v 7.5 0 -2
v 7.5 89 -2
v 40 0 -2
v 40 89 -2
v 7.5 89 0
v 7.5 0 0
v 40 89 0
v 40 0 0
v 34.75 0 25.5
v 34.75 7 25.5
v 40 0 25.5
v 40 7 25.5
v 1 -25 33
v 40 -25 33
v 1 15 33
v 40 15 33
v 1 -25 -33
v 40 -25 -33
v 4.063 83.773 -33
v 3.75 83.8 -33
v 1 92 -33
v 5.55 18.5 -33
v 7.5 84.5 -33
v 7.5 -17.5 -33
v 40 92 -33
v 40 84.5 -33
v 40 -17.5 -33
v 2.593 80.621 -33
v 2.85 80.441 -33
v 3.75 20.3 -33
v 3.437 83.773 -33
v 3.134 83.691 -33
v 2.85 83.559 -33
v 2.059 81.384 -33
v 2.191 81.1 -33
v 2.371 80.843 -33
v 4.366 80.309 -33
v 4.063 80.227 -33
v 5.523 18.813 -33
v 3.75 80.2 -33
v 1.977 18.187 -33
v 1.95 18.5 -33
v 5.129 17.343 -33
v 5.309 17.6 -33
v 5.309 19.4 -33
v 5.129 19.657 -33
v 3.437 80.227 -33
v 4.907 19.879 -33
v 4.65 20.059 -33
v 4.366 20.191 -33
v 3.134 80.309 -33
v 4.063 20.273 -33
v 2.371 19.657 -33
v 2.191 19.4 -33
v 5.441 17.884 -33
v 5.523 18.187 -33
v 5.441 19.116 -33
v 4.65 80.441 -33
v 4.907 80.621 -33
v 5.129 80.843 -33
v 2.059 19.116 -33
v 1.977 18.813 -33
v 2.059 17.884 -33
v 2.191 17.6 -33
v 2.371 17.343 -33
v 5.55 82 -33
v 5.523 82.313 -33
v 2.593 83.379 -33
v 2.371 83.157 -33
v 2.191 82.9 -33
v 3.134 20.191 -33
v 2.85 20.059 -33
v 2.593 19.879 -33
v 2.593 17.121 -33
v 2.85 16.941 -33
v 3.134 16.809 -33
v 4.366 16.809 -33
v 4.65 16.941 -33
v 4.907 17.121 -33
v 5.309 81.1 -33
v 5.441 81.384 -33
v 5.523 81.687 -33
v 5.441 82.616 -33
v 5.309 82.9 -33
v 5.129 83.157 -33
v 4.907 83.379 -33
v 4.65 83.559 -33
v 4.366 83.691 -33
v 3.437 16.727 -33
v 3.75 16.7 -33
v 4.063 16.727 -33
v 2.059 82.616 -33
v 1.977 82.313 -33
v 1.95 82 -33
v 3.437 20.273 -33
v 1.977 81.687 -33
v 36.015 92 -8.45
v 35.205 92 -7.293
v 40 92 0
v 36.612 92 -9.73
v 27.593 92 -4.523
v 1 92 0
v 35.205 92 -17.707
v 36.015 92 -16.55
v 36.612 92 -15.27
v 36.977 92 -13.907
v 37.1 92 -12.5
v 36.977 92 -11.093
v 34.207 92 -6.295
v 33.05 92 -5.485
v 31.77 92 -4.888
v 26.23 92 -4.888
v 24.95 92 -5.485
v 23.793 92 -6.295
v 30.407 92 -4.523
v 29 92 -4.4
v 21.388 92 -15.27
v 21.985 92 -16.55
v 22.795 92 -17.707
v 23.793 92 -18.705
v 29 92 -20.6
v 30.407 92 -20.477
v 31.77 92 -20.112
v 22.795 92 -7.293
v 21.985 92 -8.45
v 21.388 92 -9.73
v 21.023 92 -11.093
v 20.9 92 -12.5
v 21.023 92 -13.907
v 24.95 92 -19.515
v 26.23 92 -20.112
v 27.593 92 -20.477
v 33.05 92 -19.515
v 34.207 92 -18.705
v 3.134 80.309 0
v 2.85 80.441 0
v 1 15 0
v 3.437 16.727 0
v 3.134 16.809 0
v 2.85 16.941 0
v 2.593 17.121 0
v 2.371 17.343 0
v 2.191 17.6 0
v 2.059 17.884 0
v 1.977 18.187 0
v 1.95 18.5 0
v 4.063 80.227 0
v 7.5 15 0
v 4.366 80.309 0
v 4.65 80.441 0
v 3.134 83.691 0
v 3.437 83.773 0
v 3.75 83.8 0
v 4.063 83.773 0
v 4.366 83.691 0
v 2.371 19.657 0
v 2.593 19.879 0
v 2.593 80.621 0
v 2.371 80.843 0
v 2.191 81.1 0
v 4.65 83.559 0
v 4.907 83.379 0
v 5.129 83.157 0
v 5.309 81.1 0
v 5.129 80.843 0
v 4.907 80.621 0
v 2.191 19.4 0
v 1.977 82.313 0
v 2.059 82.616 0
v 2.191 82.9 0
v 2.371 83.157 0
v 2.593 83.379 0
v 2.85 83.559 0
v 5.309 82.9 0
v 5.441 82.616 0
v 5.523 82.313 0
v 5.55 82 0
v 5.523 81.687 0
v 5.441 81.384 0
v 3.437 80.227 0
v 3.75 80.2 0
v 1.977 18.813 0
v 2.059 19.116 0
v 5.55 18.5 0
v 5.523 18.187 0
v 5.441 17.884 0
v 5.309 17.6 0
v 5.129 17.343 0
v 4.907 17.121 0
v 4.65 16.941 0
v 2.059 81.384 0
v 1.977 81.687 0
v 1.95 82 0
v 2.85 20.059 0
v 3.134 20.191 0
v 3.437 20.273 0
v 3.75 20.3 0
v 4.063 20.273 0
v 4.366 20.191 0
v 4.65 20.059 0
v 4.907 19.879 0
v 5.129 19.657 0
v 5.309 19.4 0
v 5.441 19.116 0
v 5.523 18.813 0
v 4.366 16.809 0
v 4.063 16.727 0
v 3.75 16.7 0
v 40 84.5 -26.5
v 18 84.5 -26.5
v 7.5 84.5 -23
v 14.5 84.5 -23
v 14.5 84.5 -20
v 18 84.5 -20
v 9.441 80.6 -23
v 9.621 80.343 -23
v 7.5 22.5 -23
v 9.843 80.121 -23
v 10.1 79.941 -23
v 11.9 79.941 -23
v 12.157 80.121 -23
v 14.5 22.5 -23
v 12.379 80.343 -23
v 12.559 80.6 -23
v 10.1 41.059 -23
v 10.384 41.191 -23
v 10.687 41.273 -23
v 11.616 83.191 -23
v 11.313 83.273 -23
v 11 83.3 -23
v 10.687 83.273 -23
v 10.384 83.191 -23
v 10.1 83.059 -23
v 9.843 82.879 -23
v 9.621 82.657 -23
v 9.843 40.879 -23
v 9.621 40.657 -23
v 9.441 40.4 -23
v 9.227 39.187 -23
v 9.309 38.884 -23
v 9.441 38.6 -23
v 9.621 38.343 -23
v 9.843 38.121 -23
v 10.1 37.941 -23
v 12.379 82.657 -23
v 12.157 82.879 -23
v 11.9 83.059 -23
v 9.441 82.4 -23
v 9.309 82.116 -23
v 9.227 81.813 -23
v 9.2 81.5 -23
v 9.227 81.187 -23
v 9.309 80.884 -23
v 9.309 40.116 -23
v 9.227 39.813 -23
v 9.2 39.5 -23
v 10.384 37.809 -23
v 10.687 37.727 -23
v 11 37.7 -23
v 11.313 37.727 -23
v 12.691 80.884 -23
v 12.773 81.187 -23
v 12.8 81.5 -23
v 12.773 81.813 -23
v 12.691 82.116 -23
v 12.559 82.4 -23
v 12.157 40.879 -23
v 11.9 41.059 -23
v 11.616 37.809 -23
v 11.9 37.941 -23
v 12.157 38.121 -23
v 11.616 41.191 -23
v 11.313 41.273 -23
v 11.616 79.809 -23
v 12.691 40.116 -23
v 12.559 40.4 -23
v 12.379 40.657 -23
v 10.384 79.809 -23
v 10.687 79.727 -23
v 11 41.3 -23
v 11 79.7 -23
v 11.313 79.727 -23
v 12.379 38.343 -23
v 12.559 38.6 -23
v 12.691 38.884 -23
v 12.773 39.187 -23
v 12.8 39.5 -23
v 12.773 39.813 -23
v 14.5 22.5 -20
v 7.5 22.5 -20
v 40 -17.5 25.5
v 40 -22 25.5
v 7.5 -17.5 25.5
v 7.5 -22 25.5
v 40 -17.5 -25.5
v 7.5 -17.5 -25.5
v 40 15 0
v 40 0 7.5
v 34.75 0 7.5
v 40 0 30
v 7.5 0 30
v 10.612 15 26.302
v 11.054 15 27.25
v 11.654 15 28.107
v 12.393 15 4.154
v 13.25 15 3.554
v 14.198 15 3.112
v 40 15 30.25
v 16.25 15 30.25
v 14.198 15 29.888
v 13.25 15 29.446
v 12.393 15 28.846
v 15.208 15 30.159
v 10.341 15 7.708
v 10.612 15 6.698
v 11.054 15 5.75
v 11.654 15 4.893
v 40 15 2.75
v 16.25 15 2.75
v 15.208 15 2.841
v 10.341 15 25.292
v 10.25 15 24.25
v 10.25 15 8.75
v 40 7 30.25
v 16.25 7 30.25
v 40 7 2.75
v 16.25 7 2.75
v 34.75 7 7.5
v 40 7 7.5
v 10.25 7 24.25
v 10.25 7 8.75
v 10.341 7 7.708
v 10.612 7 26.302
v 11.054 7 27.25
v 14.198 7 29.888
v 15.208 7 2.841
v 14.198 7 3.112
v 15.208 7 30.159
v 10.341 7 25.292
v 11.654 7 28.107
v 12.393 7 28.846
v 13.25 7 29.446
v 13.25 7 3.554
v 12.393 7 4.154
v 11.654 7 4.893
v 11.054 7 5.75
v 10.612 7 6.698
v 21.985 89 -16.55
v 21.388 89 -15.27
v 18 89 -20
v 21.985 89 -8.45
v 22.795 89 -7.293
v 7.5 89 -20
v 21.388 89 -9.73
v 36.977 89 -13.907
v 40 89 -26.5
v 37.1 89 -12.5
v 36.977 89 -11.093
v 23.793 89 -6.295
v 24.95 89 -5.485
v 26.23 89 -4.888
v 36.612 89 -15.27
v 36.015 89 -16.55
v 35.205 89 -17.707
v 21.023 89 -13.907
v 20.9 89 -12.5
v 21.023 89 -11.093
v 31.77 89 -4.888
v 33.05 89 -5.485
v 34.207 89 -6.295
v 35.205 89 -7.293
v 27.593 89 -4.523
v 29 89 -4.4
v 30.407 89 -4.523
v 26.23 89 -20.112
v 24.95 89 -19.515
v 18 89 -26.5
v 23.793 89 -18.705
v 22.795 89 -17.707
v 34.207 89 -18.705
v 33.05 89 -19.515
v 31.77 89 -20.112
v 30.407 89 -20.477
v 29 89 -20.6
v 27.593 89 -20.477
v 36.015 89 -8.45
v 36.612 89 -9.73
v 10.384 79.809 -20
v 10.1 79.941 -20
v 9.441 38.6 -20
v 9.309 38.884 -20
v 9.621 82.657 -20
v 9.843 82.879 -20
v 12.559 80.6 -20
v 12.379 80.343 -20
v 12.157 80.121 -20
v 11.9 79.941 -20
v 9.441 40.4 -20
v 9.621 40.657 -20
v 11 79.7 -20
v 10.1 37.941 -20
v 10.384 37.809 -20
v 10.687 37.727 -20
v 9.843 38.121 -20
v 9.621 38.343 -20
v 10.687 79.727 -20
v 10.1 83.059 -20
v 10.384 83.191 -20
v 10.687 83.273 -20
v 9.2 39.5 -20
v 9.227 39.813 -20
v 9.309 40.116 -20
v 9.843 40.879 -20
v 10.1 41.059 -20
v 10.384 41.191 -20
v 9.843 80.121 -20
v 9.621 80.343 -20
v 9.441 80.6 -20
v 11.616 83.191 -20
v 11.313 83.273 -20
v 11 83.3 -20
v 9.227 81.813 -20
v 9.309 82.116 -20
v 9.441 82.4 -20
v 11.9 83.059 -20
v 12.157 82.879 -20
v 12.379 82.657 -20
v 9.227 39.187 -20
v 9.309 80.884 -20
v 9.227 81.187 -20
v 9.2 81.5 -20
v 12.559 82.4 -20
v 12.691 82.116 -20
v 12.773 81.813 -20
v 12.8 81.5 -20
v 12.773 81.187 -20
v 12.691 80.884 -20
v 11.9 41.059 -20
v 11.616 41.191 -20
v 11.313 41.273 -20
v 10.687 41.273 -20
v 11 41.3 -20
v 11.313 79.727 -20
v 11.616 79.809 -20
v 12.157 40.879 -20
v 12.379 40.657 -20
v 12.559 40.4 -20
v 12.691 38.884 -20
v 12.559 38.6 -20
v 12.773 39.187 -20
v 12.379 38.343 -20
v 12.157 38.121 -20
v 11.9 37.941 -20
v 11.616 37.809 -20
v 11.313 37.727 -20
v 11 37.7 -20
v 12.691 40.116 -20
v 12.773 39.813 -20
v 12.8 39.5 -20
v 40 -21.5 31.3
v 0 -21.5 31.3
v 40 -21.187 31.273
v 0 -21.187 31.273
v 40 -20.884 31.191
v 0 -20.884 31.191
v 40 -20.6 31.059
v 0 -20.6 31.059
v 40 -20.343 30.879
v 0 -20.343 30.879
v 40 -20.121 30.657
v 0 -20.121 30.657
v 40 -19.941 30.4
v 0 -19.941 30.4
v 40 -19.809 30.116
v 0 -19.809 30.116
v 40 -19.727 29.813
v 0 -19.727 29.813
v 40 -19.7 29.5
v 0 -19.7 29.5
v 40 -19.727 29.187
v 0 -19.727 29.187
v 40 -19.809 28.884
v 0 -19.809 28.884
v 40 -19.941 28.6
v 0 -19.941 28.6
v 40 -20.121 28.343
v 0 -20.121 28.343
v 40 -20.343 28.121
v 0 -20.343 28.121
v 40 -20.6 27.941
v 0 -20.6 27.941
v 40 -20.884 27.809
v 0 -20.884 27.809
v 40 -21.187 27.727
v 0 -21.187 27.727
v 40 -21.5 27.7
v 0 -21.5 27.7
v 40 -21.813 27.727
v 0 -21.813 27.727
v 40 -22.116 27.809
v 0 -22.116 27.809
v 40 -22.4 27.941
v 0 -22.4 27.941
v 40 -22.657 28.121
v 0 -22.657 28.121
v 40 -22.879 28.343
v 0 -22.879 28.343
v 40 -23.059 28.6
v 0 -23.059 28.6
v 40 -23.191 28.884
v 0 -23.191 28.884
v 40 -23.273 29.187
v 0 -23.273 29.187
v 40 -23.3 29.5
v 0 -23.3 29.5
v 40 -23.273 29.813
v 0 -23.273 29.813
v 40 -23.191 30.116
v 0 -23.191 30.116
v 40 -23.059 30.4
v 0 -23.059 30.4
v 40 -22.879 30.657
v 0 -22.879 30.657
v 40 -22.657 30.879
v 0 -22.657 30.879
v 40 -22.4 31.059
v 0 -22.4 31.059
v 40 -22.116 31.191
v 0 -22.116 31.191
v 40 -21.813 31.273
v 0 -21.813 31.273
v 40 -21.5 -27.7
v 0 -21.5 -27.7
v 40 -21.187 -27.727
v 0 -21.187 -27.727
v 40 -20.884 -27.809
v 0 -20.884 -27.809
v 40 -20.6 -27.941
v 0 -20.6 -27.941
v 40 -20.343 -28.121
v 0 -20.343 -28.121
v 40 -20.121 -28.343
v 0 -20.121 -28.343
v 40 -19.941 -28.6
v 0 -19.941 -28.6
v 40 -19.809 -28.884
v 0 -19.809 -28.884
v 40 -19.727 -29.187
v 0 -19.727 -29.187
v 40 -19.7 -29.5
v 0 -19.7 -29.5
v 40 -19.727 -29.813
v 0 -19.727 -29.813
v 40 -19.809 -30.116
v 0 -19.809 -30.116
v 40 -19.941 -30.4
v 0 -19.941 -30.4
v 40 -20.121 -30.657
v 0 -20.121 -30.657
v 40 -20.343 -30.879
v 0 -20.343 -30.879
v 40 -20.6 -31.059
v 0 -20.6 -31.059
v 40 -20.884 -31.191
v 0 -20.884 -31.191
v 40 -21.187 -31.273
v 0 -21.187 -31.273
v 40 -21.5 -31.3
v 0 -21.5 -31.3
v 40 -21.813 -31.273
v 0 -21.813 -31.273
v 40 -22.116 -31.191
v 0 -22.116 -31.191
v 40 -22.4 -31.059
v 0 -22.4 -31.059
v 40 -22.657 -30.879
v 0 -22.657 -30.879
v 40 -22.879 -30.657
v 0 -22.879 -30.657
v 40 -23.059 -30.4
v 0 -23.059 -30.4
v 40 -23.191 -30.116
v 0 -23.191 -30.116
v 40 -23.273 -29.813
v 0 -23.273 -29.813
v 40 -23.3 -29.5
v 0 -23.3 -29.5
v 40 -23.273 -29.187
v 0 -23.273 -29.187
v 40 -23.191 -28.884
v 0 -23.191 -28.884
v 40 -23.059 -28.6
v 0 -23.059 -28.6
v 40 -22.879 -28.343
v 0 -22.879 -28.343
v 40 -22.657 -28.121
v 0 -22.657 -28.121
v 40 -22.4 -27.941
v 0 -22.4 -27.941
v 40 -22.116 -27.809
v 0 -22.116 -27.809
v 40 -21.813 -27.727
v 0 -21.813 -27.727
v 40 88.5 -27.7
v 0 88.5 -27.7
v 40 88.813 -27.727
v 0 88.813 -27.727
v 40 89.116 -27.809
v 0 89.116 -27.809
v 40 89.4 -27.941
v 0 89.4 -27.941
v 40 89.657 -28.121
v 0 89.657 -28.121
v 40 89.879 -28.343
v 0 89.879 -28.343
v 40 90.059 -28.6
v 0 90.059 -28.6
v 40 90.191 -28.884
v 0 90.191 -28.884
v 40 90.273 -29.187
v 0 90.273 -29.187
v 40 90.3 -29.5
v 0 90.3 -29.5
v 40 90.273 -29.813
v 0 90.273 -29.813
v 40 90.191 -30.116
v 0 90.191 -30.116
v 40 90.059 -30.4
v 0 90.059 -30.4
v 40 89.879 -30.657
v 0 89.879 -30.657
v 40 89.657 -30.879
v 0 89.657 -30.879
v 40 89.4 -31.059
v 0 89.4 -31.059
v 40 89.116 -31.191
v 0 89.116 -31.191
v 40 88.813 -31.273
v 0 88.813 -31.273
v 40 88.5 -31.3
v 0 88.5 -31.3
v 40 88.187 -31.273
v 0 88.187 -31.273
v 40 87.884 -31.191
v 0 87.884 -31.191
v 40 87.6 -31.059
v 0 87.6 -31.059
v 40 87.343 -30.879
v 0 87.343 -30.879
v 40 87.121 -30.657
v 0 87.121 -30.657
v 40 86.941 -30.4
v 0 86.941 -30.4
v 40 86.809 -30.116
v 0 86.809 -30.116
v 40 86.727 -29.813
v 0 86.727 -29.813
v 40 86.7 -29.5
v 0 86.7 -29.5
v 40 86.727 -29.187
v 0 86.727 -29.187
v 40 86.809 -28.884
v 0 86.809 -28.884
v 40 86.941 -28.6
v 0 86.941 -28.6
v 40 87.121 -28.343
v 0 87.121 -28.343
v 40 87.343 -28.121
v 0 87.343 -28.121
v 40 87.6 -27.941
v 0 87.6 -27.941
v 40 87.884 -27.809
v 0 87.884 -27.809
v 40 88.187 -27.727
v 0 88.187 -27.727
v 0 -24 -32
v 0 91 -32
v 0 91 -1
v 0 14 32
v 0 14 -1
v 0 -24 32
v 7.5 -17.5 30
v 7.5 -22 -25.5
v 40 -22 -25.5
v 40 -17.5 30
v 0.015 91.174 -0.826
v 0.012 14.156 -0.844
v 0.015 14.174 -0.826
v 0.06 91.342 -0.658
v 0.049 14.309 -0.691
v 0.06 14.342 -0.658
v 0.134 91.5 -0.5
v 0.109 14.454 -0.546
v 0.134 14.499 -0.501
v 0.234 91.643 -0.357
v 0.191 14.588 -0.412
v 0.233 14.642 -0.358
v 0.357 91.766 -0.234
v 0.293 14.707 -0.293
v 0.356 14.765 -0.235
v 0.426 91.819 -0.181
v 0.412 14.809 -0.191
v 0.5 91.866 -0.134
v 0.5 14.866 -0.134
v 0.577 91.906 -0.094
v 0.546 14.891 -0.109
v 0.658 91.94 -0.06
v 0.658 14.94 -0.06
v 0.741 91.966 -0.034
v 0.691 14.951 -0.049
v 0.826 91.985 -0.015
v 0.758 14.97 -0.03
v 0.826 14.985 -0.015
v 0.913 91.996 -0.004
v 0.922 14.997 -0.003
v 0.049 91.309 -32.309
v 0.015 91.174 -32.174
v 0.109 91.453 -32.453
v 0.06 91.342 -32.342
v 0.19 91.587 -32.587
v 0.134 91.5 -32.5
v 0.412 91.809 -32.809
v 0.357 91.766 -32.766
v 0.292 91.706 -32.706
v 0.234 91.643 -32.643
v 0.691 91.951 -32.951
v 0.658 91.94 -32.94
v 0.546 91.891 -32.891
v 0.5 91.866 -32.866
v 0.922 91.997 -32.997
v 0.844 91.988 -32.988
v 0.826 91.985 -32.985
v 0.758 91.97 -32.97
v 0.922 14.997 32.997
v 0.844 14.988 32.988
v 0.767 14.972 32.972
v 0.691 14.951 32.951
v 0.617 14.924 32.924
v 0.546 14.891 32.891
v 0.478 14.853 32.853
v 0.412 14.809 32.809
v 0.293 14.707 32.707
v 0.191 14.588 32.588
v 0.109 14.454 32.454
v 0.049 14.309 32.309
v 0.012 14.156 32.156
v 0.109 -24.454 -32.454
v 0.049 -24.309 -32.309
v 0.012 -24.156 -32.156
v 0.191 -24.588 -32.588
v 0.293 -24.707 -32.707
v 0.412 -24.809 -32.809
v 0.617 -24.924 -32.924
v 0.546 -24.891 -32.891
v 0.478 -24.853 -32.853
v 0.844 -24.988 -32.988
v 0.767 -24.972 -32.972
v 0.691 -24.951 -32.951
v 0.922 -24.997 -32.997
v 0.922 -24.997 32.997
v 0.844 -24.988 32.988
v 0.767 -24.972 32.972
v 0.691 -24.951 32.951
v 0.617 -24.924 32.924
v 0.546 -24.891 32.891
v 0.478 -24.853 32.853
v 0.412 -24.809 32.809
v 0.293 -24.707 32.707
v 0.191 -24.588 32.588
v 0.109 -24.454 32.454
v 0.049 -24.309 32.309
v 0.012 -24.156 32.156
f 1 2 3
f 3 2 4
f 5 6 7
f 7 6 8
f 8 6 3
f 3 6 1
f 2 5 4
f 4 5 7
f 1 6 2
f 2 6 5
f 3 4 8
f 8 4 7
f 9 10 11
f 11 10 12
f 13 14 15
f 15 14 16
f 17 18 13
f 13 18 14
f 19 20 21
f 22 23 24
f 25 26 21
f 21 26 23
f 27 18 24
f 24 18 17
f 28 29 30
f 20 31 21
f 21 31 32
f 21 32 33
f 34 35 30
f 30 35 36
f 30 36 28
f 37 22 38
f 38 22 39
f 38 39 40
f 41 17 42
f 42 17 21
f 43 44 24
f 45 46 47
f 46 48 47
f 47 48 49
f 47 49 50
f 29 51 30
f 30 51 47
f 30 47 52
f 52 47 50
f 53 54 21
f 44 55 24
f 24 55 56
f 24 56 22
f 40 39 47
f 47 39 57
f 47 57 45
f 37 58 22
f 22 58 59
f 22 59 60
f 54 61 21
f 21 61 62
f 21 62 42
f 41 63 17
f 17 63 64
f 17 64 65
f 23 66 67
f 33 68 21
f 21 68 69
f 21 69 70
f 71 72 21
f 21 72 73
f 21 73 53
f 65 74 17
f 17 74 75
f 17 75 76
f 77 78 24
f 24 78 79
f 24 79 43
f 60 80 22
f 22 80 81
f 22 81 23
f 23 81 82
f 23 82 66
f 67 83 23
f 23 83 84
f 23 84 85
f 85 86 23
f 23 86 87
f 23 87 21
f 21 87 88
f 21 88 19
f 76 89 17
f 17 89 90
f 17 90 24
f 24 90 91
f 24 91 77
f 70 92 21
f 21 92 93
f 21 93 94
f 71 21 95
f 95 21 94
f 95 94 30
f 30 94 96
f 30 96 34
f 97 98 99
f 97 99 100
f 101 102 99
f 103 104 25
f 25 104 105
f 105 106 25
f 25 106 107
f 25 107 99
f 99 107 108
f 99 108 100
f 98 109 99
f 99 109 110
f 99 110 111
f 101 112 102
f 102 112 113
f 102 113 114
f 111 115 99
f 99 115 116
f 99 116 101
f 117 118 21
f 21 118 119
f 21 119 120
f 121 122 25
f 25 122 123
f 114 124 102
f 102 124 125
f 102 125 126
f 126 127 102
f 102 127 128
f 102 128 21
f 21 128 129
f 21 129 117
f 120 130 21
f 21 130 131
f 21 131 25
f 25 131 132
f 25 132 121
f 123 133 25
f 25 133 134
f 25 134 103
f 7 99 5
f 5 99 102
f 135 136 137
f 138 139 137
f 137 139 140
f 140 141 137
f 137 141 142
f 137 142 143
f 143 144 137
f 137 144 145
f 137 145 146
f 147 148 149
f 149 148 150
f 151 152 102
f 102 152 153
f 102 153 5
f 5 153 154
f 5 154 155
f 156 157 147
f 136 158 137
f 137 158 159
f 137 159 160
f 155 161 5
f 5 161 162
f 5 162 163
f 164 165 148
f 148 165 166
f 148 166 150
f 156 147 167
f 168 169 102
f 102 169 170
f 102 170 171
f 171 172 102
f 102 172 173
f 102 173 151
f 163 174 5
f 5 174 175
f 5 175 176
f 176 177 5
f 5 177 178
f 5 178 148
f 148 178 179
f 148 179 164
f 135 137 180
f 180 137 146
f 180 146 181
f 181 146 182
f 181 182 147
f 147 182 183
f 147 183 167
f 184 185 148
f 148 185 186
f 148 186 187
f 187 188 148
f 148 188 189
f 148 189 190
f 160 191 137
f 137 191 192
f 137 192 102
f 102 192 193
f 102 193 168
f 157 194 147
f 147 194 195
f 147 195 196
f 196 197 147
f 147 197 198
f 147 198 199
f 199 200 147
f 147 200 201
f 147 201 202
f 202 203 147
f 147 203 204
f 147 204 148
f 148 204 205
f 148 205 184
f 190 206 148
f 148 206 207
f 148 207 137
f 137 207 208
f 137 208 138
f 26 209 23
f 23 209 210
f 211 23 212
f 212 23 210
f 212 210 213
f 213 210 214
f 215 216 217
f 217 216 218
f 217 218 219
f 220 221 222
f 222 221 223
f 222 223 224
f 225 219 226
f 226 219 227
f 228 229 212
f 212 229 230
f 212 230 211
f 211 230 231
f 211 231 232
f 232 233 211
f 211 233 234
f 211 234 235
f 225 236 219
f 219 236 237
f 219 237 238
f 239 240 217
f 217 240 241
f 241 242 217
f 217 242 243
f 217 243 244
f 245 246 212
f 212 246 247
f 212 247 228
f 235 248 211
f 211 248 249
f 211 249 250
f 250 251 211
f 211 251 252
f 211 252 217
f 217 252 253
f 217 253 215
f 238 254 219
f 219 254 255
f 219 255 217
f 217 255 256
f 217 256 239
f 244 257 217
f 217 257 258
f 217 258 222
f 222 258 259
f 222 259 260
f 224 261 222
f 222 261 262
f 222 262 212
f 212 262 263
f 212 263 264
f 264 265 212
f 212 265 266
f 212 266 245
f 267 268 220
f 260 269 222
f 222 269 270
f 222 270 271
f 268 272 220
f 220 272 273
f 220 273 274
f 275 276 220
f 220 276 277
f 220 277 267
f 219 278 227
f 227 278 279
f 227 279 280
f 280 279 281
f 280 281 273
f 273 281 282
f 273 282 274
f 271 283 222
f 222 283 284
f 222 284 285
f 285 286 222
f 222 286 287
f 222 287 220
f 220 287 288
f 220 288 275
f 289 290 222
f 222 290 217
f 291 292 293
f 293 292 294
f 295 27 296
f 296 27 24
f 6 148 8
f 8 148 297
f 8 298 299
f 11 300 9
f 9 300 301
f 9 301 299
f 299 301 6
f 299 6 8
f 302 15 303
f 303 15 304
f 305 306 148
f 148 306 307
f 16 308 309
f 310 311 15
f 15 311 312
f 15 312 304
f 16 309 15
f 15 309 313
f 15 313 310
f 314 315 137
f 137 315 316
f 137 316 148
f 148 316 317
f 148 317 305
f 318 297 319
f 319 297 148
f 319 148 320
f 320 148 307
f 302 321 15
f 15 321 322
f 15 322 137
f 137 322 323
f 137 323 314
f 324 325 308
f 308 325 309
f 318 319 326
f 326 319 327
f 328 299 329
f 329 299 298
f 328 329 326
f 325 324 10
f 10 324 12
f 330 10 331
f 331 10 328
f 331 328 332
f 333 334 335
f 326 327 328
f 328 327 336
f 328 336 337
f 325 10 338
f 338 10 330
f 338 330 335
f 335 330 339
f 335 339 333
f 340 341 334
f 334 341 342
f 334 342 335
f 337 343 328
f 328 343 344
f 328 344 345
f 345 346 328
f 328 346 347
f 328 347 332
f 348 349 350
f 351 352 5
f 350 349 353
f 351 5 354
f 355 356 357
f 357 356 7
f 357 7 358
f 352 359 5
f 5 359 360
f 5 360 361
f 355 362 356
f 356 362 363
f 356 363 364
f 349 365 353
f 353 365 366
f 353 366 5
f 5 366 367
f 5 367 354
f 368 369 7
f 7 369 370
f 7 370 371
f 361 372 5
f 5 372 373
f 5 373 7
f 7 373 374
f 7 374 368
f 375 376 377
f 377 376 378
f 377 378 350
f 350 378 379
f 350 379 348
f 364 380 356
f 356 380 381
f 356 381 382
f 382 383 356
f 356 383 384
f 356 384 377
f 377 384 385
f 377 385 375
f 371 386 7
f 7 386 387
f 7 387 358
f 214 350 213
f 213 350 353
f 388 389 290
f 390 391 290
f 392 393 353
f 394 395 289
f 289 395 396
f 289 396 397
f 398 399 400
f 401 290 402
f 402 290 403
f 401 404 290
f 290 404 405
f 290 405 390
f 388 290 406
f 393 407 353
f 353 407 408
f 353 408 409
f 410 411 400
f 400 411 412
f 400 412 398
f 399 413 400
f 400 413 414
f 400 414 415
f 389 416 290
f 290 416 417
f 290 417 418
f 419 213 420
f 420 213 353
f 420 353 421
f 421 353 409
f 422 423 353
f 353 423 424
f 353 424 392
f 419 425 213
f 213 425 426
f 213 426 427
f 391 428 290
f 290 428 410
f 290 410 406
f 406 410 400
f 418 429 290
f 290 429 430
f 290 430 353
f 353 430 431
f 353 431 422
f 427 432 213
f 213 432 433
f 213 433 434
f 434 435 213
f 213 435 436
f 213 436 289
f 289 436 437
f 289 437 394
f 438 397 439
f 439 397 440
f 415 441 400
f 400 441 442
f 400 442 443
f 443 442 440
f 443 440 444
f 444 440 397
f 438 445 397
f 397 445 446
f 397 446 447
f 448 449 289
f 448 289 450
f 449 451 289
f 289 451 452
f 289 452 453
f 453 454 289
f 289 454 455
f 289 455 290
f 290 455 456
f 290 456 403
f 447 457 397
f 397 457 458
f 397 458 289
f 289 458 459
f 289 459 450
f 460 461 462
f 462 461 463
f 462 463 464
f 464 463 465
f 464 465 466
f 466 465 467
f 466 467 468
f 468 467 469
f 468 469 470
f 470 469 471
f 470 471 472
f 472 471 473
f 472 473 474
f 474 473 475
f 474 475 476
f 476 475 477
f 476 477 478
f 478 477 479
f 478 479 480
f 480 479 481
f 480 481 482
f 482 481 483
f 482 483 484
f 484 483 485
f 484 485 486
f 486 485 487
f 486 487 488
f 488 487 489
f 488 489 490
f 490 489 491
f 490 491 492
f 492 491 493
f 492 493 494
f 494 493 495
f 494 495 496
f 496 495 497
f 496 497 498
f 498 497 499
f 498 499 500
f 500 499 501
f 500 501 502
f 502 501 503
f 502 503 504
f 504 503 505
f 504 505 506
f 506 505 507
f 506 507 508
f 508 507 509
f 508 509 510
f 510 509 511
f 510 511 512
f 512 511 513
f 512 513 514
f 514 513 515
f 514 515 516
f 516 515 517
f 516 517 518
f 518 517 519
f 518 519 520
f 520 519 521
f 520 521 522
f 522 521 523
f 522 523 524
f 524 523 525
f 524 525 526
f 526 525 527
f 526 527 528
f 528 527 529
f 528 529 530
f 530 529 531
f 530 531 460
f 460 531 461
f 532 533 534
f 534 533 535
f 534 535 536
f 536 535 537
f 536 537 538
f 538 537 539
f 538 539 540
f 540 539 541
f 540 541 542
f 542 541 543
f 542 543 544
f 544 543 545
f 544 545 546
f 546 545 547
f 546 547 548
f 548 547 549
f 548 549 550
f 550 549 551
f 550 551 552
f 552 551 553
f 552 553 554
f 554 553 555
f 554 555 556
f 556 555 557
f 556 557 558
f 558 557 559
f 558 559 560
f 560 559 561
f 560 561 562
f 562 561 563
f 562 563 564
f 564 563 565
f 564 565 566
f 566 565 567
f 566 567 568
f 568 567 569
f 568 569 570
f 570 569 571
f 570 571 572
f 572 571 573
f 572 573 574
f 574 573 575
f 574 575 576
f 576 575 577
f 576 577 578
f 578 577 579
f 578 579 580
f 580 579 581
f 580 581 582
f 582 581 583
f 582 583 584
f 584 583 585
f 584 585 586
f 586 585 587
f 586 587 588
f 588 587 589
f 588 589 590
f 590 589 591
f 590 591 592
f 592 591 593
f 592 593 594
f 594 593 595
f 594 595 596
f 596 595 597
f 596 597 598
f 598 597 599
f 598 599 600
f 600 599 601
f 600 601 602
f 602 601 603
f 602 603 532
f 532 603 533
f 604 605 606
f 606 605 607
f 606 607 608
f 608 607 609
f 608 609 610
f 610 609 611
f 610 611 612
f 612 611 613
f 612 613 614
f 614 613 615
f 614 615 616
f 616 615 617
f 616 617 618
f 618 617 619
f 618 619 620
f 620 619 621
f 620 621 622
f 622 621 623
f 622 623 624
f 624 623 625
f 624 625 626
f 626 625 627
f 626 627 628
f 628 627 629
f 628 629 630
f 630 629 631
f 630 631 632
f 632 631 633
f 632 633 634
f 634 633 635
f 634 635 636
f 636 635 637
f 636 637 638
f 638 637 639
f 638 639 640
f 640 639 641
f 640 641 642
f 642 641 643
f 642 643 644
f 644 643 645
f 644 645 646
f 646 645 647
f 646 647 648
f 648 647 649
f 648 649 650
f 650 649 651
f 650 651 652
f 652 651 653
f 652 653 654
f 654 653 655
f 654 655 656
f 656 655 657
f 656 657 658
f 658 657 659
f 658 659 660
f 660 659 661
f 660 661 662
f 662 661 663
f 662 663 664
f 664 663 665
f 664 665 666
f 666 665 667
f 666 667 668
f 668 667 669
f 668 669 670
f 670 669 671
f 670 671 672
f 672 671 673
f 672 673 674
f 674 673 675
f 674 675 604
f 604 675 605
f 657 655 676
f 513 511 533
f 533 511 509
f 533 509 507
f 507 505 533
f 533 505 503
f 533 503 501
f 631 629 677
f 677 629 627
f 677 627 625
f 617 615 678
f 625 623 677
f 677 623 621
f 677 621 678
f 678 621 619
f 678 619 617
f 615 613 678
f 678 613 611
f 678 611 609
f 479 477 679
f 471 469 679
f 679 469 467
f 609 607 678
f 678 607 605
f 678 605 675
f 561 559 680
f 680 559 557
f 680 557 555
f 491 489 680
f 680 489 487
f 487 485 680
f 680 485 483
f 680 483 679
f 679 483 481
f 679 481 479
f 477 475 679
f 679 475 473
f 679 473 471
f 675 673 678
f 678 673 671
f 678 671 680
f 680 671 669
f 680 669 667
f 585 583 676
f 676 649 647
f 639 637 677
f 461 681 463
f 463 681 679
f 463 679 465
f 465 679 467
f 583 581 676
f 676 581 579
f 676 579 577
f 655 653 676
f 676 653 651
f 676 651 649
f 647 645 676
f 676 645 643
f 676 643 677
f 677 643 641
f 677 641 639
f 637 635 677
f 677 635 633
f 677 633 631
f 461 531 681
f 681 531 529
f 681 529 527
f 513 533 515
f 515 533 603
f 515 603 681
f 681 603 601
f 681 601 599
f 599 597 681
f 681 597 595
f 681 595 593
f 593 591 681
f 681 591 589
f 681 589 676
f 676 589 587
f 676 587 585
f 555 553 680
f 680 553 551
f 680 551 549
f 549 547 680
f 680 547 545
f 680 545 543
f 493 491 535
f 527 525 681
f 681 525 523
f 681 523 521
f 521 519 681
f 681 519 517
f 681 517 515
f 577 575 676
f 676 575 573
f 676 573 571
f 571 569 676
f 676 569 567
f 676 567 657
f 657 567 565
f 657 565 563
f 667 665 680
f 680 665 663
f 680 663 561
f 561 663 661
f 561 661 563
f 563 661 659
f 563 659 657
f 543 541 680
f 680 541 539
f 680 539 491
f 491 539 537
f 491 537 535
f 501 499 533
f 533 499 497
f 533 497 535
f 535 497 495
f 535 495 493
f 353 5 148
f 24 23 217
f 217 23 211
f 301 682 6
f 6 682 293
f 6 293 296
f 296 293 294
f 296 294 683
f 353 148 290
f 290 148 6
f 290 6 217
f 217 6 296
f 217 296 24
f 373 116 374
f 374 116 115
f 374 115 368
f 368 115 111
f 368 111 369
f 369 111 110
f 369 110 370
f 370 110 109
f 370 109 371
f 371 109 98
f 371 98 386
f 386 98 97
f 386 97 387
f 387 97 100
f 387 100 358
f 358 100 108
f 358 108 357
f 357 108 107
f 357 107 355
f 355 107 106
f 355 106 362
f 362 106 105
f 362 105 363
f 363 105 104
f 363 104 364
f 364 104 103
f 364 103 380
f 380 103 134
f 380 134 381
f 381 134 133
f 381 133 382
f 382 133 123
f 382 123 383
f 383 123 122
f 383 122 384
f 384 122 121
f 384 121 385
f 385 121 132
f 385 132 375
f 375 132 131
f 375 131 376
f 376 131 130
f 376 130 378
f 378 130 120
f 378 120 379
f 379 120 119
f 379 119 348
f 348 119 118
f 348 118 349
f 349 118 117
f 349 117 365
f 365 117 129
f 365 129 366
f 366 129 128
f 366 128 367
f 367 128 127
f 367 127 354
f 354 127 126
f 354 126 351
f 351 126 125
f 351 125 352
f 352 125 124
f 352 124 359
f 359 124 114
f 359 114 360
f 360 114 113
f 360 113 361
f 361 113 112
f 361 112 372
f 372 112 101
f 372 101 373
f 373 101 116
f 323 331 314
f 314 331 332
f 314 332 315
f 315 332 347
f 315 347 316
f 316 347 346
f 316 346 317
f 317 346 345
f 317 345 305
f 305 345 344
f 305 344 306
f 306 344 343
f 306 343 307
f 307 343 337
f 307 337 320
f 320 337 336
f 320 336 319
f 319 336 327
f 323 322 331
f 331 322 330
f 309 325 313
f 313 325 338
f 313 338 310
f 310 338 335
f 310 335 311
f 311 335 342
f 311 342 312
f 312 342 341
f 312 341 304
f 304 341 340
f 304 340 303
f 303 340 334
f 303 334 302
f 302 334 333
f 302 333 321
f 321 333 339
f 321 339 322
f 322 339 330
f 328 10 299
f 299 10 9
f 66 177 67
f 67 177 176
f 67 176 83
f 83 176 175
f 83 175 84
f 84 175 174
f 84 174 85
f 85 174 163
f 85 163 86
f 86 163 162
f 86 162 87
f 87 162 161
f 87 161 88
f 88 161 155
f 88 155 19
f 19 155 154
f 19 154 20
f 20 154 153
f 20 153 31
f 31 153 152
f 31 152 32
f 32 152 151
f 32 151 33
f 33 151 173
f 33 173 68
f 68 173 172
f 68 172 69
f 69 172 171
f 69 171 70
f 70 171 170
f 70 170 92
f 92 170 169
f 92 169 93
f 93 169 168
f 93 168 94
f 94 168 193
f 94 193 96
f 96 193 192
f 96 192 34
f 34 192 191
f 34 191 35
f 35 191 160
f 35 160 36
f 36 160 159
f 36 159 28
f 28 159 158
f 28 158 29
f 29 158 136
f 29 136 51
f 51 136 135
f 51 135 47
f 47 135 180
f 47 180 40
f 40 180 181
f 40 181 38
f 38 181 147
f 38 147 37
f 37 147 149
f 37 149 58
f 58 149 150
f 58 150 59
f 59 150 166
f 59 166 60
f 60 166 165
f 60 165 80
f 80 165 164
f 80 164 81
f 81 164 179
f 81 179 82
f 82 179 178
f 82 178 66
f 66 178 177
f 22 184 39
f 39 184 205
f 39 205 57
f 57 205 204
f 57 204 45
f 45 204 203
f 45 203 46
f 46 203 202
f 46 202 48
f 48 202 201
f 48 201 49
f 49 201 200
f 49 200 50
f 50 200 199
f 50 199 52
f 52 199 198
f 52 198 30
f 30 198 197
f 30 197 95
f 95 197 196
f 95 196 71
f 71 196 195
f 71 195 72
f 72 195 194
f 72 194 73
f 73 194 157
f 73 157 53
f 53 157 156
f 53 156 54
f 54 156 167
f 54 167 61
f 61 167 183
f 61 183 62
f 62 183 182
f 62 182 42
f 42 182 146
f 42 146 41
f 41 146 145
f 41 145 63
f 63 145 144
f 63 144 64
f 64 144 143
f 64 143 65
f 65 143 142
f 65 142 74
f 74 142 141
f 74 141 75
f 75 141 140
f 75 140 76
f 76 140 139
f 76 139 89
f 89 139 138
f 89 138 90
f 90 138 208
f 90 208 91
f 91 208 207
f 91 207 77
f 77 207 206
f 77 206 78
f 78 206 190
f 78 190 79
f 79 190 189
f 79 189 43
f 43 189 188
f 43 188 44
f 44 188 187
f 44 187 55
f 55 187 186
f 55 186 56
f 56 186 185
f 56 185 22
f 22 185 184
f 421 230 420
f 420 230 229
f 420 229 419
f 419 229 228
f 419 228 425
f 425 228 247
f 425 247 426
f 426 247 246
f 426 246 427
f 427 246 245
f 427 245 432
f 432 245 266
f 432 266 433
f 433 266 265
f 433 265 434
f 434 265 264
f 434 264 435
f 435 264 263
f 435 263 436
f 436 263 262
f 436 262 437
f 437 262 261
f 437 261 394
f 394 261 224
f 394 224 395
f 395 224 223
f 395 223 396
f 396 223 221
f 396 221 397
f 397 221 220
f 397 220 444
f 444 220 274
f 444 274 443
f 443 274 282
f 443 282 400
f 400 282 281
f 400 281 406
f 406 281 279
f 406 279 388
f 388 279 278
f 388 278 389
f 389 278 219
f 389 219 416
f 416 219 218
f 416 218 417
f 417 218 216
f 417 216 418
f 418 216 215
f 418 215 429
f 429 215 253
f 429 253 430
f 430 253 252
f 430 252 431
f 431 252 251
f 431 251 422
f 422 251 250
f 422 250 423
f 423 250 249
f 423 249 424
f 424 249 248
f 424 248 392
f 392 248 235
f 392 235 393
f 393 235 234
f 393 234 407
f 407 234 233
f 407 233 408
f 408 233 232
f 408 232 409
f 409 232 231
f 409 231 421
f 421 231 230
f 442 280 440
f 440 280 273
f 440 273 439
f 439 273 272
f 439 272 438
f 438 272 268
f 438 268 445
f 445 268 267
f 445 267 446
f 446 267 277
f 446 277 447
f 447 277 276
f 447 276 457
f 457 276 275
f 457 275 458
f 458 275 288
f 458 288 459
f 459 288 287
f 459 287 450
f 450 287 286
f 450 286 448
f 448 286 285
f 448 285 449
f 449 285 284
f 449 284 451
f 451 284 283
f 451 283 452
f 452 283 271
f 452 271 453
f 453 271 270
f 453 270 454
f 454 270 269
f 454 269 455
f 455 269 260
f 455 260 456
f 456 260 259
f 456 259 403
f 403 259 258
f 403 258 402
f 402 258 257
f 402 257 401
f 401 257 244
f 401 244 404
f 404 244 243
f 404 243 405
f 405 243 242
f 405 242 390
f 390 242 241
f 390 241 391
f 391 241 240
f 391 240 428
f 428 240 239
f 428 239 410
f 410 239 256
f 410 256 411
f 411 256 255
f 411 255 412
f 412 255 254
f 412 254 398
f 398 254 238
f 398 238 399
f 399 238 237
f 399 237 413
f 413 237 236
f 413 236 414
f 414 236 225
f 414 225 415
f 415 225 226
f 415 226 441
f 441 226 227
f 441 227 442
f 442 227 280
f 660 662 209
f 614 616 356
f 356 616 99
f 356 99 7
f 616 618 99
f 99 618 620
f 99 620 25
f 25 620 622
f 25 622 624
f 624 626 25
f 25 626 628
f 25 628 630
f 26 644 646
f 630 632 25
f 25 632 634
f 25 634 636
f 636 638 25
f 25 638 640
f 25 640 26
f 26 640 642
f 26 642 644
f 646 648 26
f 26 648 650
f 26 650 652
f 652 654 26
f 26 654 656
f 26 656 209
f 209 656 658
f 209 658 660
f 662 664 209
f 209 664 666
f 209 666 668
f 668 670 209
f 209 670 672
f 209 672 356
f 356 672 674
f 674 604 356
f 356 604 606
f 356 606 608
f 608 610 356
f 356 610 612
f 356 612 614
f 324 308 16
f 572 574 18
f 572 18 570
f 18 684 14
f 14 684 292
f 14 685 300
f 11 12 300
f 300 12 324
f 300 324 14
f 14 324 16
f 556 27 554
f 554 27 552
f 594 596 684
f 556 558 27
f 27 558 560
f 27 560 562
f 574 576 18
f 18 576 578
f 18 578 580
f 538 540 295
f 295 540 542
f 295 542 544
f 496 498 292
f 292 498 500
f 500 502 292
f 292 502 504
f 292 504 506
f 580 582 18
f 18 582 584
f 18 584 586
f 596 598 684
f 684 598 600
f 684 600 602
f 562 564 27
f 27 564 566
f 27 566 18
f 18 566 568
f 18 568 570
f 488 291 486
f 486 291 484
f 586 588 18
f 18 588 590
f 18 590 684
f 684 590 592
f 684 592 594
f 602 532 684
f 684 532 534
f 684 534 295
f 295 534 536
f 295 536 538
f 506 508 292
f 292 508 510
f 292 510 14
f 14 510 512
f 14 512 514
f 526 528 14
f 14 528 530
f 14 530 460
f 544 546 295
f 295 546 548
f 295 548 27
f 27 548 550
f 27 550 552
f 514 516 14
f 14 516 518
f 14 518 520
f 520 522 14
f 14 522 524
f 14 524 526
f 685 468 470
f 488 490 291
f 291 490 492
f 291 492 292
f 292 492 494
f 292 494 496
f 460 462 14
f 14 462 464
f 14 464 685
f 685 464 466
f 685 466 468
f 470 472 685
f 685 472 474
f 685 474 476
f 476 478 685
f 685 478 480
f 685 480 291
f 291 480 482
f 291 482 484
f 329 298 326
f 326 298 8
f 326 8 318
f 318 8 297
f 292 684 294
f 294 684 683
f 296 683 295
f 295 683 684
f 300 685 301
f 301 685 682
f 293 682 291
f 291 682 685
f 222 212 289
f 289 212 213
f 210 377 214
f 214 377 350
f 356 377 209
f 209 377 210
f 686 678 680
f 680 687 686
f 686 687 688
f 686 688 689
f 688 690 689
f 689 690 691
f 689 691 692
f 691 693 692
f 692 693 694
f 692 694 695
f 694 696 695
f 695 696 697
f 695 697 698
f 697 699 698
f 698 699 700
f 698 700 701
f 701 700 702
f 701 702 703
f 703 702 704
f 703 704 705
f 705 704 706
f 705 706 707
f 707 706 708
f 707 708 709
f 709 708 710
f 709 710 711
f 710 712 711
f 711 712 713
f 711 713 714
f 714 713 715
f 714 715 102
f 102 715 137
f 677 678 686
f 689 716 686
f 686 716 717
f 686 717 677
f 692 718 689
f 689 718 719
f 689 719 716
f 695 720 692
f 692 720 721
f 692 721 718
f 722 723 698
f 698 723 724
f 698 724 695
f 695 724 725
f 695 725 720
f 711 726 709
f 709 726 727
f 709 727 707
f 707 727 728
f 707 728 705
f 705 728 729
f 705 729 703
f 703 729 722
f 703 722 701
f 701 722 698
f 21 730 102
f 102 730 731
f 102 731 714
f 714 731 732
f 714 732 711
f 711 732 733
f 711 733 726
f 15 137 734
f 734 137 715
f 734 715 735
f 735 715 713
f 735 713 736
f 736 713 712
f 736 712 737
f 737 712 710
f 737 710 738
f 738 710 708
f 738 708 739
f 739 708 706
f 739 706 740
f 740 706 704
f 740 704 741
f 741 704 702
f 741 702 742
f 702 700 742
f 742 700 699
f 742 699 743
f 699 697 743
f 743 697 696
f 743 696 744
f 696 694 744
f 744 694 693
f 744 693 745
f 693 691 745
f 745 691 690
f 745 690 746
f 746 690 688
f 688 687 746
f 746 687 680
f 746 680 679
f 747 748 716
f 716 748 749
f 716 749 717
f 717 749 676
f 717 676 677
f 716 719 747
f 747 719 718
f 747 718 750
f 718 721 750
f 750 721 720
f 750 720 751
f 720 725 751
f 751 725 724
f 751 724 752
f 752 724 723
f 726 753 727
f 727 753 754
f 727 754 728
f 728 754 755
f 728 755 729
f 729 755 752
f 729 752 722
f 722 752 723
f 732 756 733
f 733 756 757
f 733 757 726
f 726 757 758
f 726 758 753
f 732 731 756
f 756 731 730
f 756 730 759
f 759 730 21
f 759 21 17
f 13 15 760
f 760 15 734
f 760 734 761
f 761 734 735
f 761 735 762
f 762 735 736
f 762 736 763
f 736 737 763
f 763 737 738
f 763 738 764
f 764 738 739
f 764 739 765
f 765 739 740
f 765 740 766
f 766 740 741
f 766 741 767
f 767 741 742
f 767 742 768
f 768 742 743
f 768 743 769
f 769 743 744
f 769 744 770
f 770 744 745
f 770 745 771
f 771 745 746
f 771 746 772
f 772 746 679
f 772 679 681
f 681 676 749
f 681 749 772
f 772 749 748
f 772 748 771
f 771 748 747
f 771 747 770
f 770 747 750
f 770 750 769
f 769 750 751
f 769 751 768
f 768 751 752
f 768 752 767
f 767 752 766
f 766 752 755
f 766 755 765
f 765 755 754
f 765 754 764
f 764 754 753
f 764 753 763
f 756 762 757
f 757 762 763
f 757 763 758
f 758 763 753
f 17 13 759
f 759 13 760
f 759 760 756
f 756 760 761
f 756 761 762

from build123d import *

# Parameters (mm, degrees)
SKETCH_1_W               = 33
SKETCH_1_H               = 25
SKETCH_1_W_2             = 23
SKETCH_1_H_2             = 117
SKETCH_1_W_3             = 10
EXTRUDE_1_DEPTH          = 60
SKETCH_2_W               = 45
SKETCH_2_H               = 62
CUT_EXTRUDE_1_DEPTH      = 10
SKETCH_3_R               = 8.1
CUT_EXTRUDE_2_DEPTH      = 10
SKETCH_4_W               = 45
SKETCH_4_H               = 40
CUT_EXTRUDE_3_DEPTH      = 58.5
SKETCH_5_W               = 60
SKETCH_5_H               = 33
EXTRUDE_2_DEPTH          = 15
EXTRUDE_3_DEPTH          = 7
SKETCH_7_W               = 45
SKETCH_7_H               = 66.5
CUT_EXTRUDE_4_DEPTH      = 20
SKETCH_8_W               = 45
SKETCH_8_H               = 2
EXTRUDE_4_DEPTH          = 89
SKETCH_9_R               = 1.8
CUT_EXTRUDE_5_DEPTH      = 61
SKETCH_10_R              = 1.8
CUT_EXTRUDE_6_DEPTH      = 34
CUT_EXTRUDE_6_DEPTH_BACK = 34
SKETCH_12_R              = 1.8
CUT_EXTRUDE_7_DEPTH      = 3
CUT_EXTRUDE_9_DEPTH      = 20
SKETCH_17_W              = 32.5
SKETCH_17_H              = 51
CUT_EXTRUDE_11_DEPTH     = 4.5
SKETCH_18_W              = 32.5
SKETCH_18_H              = 17.5
CUT_EXTRUDE_12_DEPTH     = 4.5
SKETCH_19_W              = 25.5
SKETCH_19_H              = 62
CUT_EXTRUDE_13_DEPTH     = 3
SKETCH_20_W              = 6.5
SKETCH_20_H              = 4.5
CUT_EXTRUDE_14_DEPTH     = 22
FILLET_1_R               = 1


with BuildPart() as part:
    # ｽｹｯﾁ1 → ﾎﾞｽ - 押し出し1 (new body)
    with BuildSketch(Plane(origin=(0, 0, 0), x_dir=(0, 0, -1), z_dir=(1, 0, 0))):
        with Locations((-16.5, -12.5)):
            Rectangle(SKETCH_1_W, SKETCH_1_H)
        with Locations((11.5, 33.5)):
            Rectangle(SKETCH_1_W_2, SKETCH_1_H_2)
        with Locations((28, 33.5)):
            Rectangle(SKETCH_1_W_3, SKETCH_1_H_2)
    extrude(amount=EXTRUDE_1_DEPTH)

    # ｽｹｯﾁ2 → ｶｯﾄ - 押し出し1 (cut)
    with BuildSketch(Plane(origin=(0, 0, -33), x_dir=(-1, 0, 0), z_dir=(0, 0, -1))):
        with Locations((-30, 53.5)):
            Rectangle(SKETCH_2_W, SKETCH_2_H)
    extrude(amount=-CUT_EXTRUDE_1_DEPTH, mode=Mode.SUBTRACT)

    # ｽｹｯﾁ3 → ｶｯﾄ - 押し出し2 (cut)
    with BuildSketch(Plane(origin=(0, 92, 0), x_dir=(1, 0, 0), z_dir=(0, 1, 0))):
        with Locations((29, 12.5)):
            Circle(SKETCH_3_R)
    extrude(amount=-CUT_EXTRUDE_2_DEPTH, mode=Mode.SUBTRACT)

    # ｽｹｯﾁ4 → ｶｯﾄ - 押し出し3 (cut)
    with BuildSketch(Plane(origin=(0, 0, -33), x_dir=(-1, 0, 0), z_dir=(0, 0, -1))):
        with Locations((-30, 2.5)):
            Rectangle(SKETCH_4_W, SKETCH_4_H)
    extrude(amount=-CUT_EXTRUDE_3_DEPTH, mode=Mode.SUBTRACT)

    # ｽｹｯﾁ5 → ﾎﾞｽ - 押し出し2 (add)
    with BuildSketch(Plane(origin=(0, 0, 0), x_dir=(1, 0, 0), z_dir=(0, 1, 0))):
        with Locations((30, -16.5)):
            Rectangle(SKETCH_5_W, SKETCH_5_H)
        with BuildLine():
            Line((41.75, -2.75), (16.25, -2.75))
            ThreePointArc((16.25, -2.75), (12.007359313, -4.507359313), (10.25, -8.75))
            Line((10.25, -8.75), (10.25, -24.25))
            ThreePointArc((10.25, -24.25), (12.007359313, -28.492640687), (16.25, -30.25))
            Line((16.25, -30.25), (41.75, -30.25))
            ThreePointArc((41.75, -30.25), (45.992640687, -28.492640687), (47.75, -24.25))
            Line((47.75, -24.25), (47.75, -8.75))
            ThreePointArc((47.75, -8.75), (45.992640687, -4.507359313), (41.75, -2.75))
        make_face(mode=Mode.SUBTRACT)
    extrude(amount=EXTRUDE_2_DEPTH)

    # ｽｹｯﾁ6 → ﾎﾞｽ - 押し出し3 (add)
    with BuildSketch(Plane(origin=(0, 0, 0), x_dir=(1, 0, 0), z_dir=(0, 1, 0))):
        with BuildLine():
            Line((10.381652703, -25.5), (34.75, -25.5))
            Line((34.75, -25.5), (34.75, -7.5))
            Line((34.75, -7.5), (34.75, -2.75))
            Line((34.75, -2.75), (16.25, -2.75))
            ThreePointArc((16.25, -2.75), (12.007359313, -4.507359313), (10.25, -8.75))
            Line((10.25, -8.75), (10.25, -24.25))
            ThreePointArc((10.25, -24.25), (10.283003947, -24.878456927), (10.381652703, -25.5))
        make_face()
        with BuildLine():
            Line((16.25, -30.25), (34.75, -30.25))
            Line((34.75, -30.25), (34.75, -25.5))
            Line((34.75, -25.5), (10.381652703, -25.5))
            ThreePointArc((10.381652703, -25.5), (12.475082782, -28.913689527), (16.25, -30.25))
        make_face()
        with BuildLine():
            Line((34.75, -25.5), (34.75, -30.25))
            Line((34.75, -30.25), (41.75, -30.25))
            ThreePointArc((41.75, -30.25), (42.251757562, -30.228983137), (42.75, -30.166079783))
            Line((42.75, -30.166079783), (42.75, -25.5))
            Line((42.75, -25.5), (34.75, -25.5))
        make_face()
        with BuildLine():
            Line((42.75, -7.5), (42.75, -25.5))
            Line((42.75, -25.5), (47.618347297, -25.5))
            ThreePointArc((47.618347297, -25.5), (47.716996053, -24.878456927), (47.75, -24.25))
            Line((47.75, -24.25), (47.75, -8.75))
            ThreePointArc((47.75, -8.75), (46.332575695, -4.877016654), (42.75, -2.833920217))
            Line((42.75, -2.833920217), (42.75, -7.5))
        make_face()
        with BuildLine():
            Line((47.618347297, -25.5), (42.75, -25.5))
            Line((42.75, -25.5), (42.75, -30.166079783))
            ThreePointArc((42.75, -30.166079783), (45.901701312, -28.581671296), (47.618347297, -25.5))
        make_face()
        with BuildLine():
            Line((34.75, -2.75), (34.75, -7.5))
            Line((34.75, -7.5), (42.75, -7.5))
            Line((42.75, -7.5), (42.75, -2.833920217))
            ThreePointArc((42.75, -2.833920217), (42.251757562, -2.771016863), (41.75, -2.75))
            Line((41.75, -2.75), (34.75, -2.75))
        make_face()
    extrude(amount=EXTRUDE_3_DEPTH)

    # ｽｹｯﾁ7 → ｶｯﾄ - 押し出し4 (cut)
    with BuildSketch(Plane.XY):
        with Locations((30, 55.75)):
            Rectangle(SKETCH_7_W, SKETCH_7_H)
    extrude(amount=-CUT_EXTRUDE_4_DEPTH, mode=Mode.SUBTRACT)

    # ｽｹｯﾁ9 → ｶｯﾄ - 押し出し5 (cut, through all)
    with BuildSketch(Plane.ZY):
        with Locations((-29.5, 88.5)):
            Circle(SKETCH_9_R)
        with Locations((-29.5, -21.5)):
            Circle(SKETCH_9_R)
        with Locations((29.5, -21.5)):
            Circle(SKETCH_9_R)
    extrude(amount=-CUT_EXTRUDE_5_DEPTH, mode=Mode.SUBTRACT)

    # ｽｹｯﾁ10 → ｶｯﾄ - 押し出し6 (cut, two sides)
    with BuildSketch(Plane.XY) as cut_extrude_6_sk:
        with Locations((3.75, 82)):
            Circle(SKETCH_10_R)
        with Locations((56.25, 82)):
            Circle(SKETCH_10_R)
        with Locations((56.25, 18.5)):
            Circle(SKETCH_10_R)
        with Locations((3.75, 18.5)):
            Circle(SKETCH_10_R)
    extrude(amount=CUT_EXTRUDE_6_DEPTH, mode=Mode.SUBTRACT)
    extrude(cut_extrude_6_sk.sketch, amount=-CUT_EXTRUDE_6_DEPTH_BACK, mode=Mode.SUBTRACT)

    # ｽｹｯﾁ12 → ｶｯﾄ - 押し出し7 (cut)
    with BuildSketch(Plane(origin=(0, 0, -23), x_dir=(-1, 0, 0), z_dir=(0, 0, -1))):
        with Locations((-49, 81.5)):
            Circle(SKETCH_12_R)
        with Locations((-11, 81.5)):
            Circle(SKETCH_12_R)
        with Locations((-11, 39.5)):
            Circle(SKETCH_12_R)
        with Locations((-49, 39.5)):
            Circle(SKETCH_12_R)
    extrude(amount=-CUT_EXTRUDE_7_DEPTH, mode=Mode.SUBTRACT)


with BuildPart() as body_2:
    # ｽｹｯﾁ8 → ﾎﾞｽ - 押し出し4 (new body)
    with BuildSketch(Plane(origin=(0, 89, 0), x_dir=(-1, 0, 0), z_dir=(0, -1, 0))):
        with Locations((-30, 1)):
            Rectangle(SKETCH_8_W, SKETCH_8_H)
    extrude(amount=EXTRUDE_4_DEPTH)


with BuildPart() as cut_extrude_9_tool:
    # ｽｹｯﾁ15 → ｶｯﾄ - 押し出し9 (new body)
    with BuildSketch(Plane(origin=(60, 0, 0), x_dir=(0, 0, -1), z_dir=(1, 0, 0))):
        Polygon((-33, 15), (-33, -25), (33, -25), (33, 92), (0, 92), (0, 15), align=None)
    extrude(amount=-CUT_EXTRUDE_9_DEPTH)


with BuildPart() as part_1:
    add(part.part)

    # ｶｯﾄ - 押し出し9: cut by cut_extrude_9_tool
    add(cut_extrude_9_tool.part, mode=Mode.SUBTRACT)

    # ｽｹｯﾁ17 → ｶｯﾄ - 押し出し11 (cut)
    with BuildSketch(Plane(origin=(0, -17.5, 0), x_dir=(1, 0, 0), z_dir=(0, 1, 0))):
        with Locations((23.75, 0)):
            Rectangle(SKETCH_17_W, SKETCH_17_H)
    extrude(amount=-CUT_EXTRUDE_11_DEPTH, mode=Mode.SUBTRACT)

    # ｽｹｯﾁ18 → ｶｯﾄ - 押し出し12 (cut)
    with BuildSketch(Plane(origin=(0, 0, 25.5), x_dir=(-1, 0, 0), z_dir=(0, 0, -1))):
        with Locations((-23.75, -8.75)):
            Rectangle(SKETCH_18_W, SKETCH_18_H)
    extrude(amount=-CUT_EXTRUDE_12_DEPTH, mode=Mode.SUBTRACT)

    # ｽｹｯﾁ19 → ｶｯﾄ - 押し出し13 (cut)
    with BuildSketch(Plane(origin=(0, 0, -23), x_dir=(-1, 0, 0), z_dir=(0, 0, -1))):
        with Locations((-27.25, 53.5)):
            Rectangle(SKETCH_19_W, SKETCH_19_H)
    extrude(amount=-CUT_EXTRUDE_13_DEPTH, mode=Mode.SUBTRACT)

    # ｽｹｯﾁ20 → ｶｯﾄ - 押し出し14 (cut)
    with BuildSketch(Plane(origin=(40, 0, 0), x_dir=(0, 0, -1), z_dir=(1, 0, 0))):
        with Locations((23.25, 86.75)):
            Rectangle(SKETCH_20_W, SKETCH_20_H)
    extrude(amount=-CUT_EXTRUDE_14_DEPTH, mode=Mode.SUBTRACT)

    # ﾌｨﾚｯﾄ1
    fillet_1_edges = [part_1.edges().sort_by_distance(p)[0] for p in [
        (0, -5, 33),
        (0, 15, 16.5),
        (0, 53.5, 0),
        (0, 92, -16.5),
        (0, 33.5, -33),
        (0, -25, 0),
    ]]
    fillet(fillet_1_edges, radius=FILLET_1_R)


with BuildPart() as body_2_1:
    add(body_2.part)

    # ｶｯﾄ - 押し出し9: cut by cut_extrude_9_tool
    add(cut_extrude_9_tool.part, mode=Mode.SUBTRACT)


solid = Compound([part_1.part, body_2_1.part])
